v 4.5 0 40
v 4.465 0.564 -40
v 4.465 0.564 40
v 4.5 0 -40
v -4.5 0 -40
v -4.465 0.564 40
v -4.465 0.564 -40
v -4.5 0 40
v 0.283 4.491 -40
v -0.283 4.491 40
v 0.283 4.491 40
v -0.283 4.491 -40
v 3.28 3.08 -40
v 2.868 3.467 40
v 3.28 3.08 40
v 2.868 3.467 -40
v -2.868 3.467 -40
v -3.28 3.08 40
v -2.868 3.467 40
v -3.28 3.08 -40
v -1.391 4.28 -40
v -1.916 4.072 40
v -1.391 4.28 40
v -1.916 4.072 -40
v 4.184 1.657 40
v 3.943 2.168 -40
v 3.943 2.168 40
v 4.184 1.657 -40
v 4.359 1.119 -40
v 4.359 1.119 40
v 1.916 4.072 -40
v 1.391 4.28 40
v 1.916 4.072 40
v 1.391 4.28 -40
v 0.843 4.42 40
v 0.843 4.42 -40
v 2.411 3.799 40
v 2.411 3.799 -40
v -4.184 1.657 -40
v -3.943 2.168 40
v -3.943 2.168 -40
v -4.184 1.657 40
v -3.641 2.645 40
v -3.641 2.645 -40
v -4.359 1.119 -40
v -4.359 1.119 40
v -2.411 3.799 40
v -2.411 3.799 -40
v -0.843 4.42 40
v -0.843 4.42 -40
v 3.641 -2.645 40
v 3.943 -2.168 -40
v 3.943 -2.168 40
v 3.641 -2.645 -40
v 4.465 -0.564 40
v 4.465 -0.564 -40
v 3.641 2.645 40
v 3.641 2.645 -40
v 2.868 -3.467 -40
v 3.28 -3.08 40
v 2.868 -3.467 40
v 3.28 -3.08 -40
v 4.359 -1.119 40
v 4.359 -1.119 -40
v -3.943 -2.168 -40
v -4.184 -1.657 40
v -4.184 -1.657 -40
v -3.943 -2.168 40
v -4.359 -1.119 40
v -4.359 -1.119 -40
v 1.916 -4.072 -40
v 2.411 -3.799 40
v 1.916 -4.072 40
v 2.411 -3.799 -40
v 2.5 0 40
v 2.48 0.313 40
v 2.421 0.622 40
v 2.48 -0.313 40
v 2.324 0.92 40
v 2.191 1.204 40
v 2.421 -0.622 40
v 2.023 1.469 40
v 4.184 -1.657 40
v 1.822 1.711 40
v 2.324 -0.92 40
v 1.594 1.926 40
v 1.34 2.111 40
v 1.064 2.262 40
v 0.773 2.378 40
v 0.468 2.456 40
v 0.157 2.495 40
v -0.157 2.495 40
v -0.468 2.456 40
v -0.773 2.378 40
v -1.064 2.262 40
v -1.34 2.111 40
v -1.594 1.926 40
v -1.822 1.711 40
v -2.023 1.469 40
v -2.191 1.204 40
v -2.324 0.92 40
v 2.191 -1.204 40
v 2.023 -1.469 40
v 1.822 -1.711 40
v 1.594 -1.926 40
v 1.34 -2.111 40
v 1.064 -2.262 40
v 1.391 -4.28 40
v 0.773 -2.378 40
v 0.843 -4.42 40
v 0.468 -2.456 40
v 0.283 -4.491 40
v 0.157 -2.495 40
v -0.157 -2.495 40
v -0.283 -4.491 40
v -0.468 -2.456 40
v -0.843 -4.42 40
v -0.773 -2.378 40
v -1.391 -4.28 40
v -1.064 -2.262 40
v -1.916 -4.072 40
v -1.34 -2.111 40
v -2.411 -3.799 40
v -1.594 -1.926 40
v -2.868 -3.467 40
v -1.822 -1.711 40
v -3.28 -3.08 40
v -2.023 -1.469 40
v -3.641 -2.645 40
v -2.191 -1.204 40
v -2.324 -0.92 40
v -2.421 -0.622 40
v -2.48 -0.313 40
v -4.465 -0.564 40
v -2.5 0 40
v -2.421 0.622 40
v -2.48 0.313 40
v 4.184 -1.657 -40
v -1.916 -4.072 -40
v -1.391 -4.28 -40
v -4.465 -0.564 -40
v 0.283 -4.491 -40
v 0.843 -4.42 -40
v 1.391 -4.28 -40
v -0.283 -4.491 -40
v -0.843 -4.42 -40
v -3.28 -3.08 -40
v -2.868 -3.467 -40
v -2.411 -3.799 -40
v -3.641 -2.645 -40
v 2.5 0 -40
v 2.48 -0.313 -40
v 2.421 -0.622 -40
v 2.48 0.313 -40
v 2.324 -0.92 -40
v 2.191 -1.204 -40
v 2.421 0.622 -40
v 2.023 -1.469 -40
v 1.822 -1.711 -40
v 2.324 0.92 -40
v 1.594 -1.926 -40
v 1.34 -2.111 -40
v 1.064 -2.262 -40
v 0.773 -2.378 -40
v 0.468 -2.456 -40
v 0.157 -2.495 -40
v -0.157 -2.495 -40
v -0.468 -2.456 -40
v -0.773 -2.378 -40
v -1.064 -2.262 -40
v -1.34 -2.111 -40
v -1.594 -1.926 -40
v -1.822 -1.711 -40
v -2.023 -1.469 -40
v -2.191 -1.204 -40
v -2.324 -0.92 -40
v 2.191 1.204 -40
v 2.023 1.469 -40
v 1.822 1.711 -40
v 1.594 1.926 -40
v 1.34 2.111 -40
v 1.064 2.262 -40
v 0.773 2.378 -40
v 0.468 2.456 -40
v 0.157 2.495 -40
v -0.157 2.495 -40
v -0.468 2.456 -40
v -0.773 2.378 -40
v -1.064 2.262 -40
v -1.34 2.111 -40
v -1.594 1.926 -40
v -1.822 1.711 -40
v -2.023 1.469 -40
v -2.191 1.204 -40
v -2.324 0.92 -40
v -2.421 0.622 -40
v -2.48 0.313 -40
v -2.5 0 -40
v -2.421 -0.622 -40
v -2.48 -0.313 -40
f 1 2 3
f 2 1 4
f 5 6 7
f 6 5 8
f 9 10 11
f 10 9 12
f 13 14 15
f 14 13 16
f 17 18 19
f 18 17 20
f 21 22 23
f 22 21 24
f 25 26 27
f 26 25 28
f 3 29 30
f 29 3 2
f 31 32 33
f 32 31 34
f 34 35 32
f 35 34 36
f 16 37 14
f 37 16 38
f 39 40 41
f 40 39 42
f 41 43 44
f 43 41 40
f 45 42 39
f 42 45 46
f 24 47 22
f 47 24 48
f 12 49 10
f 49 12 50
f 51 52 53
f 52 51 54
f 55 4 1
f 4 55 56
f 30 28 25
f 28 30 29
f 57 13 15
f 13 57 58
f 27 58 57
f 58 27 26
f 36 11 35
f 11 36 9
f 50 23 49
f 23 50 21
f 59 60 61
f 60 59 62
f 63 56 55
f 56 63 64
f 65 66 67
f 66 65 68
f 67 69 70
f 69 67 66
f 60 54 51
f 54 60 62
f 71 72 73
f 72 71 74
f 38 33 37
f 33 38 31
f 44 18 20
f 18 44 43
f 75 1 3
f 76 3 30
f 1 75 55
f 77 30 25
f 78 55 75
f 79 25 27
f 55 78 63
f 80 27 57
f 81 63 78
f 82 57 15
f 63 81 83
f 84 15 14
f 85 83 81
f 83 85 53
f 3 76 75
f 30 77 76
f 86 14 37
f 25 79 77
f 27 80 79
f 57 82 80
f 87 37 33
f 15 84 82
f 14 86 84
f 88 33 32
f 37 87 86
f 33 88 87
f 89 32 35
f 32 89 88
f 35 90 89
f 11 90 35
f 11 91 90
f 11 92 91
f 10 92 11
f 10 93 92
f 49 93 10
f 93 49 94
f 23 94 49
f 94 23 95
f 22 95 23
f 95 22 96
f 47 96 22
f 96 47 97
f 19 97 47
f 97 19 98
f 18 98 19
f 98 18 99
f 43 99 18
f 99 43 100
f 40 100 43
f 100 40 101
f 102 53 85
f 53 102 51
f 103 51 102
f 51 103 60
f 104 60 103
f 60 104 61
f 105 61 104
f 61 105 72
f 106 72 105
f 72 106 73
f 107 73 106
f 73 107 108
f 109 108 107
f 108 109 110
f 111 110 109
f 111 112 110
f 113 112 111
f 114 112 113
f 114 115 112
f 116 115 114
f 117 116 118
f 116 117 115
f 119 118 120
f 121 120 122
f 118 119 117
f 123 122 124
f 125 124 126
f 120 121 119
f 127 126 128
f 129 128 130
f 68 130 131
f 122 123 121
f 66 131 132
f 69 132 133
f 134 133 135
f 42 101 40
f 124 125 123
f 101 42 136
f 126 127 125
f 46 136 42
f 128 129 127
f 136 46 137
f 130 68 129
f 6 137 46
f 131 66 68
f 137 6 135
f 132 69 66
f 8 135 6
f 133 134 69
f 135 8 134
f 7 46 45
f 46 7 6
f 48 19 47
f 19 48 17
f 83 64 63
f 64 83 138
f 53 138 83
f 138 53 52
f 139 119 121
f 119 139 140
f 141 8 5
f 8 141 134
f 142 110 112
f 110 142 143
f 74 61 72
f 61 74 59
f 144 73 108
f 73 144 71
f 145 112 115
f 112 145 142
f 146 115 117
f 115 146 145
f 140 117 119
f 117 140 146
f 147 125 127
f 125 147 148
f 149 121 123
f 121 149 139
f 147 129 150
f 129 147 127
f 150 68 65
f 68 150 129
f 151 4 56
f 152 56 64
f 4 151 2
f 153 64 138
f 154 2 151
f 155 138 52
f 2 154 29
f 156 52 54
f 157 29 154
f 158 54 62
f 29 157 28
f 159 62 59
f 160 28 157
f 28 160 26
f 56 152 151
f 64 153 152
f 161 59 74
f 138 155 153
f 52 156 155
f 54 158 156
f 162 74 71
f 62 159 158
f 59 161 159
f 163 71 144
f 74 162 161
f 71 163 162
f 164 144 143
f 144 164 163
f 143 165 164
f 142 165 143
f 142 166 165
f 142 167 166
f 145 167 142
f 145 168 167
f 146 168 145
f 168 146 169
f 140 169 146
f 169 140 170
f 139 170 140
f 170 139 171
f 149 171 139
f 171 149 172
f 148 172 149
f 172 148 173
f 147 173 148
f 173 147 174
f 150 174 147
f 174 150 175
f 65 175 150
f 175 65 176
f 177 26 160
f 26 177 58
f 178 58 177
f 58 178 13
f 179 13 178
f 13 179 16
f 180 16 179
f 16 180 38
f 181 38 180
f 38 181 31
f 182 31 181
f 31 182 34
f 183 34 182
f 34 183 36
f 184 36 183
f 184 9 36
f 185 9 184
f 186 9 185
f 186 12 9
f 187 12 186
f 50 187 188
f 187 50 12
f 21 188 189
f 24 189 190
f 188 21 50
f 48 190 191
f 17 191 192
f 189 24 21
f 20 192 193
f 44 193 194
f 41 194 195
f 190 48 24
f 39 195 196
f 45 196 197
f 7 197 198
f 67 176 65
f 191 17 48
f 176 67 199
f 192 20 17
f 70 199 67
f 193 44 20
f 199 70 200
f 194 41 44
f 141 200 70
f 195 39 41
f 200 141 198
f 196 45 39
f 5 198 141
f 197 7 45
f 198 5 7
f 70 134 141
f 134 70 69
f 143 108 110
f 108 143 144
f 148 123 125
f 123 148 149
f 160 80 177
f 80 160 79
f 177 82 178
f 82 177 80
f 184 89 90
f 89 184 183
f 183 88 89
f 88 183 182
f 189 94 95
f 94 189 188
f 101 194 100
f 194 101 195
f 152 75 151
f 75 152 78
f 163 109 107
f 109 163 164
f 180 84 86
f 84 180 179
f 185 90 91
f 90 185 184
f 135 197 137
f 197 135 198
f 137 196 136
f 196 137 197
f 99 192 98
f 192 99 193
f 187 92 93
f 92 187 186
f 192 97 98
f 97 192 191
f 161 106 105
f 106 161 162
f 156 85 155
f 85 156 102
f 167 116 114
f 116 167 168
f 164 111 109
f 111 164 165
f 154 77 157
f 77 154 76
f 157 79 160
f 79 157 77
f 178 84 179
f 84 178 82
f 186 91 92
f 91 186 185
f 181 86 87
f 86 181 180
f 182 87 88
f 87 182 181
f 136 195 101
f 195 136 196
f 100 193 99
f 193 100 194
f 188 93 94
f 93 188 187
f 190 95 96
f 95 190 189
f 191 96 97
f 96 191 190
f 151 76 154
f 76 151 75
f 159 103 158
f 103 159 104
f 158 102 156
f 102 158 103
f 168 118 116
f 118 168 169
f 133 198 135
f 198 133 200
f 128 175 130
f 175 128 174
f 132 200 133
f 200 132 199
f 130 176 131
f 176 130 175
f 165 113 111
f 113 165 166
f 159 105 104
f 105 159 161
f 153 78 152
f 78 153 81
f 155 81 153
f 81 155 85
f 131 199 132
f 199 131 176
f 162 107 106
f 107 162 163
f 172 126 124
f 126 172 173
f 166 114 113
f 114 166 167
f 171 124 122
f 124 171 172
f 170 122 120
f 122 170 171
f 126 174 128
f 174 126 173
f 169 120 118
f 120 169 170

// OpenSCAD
$fn = 50;


difference() {
	union() {
		translate(v = [0, 0, -40.0000000000]) {
			cylinder(h = 80, r = 4.5000000000);
		}
	}
	union() {
		translate(v = [0, 0, -100.0000000000]) {
			cylinder(h = 200, r = 2.5000000000);
		}
	}
}
